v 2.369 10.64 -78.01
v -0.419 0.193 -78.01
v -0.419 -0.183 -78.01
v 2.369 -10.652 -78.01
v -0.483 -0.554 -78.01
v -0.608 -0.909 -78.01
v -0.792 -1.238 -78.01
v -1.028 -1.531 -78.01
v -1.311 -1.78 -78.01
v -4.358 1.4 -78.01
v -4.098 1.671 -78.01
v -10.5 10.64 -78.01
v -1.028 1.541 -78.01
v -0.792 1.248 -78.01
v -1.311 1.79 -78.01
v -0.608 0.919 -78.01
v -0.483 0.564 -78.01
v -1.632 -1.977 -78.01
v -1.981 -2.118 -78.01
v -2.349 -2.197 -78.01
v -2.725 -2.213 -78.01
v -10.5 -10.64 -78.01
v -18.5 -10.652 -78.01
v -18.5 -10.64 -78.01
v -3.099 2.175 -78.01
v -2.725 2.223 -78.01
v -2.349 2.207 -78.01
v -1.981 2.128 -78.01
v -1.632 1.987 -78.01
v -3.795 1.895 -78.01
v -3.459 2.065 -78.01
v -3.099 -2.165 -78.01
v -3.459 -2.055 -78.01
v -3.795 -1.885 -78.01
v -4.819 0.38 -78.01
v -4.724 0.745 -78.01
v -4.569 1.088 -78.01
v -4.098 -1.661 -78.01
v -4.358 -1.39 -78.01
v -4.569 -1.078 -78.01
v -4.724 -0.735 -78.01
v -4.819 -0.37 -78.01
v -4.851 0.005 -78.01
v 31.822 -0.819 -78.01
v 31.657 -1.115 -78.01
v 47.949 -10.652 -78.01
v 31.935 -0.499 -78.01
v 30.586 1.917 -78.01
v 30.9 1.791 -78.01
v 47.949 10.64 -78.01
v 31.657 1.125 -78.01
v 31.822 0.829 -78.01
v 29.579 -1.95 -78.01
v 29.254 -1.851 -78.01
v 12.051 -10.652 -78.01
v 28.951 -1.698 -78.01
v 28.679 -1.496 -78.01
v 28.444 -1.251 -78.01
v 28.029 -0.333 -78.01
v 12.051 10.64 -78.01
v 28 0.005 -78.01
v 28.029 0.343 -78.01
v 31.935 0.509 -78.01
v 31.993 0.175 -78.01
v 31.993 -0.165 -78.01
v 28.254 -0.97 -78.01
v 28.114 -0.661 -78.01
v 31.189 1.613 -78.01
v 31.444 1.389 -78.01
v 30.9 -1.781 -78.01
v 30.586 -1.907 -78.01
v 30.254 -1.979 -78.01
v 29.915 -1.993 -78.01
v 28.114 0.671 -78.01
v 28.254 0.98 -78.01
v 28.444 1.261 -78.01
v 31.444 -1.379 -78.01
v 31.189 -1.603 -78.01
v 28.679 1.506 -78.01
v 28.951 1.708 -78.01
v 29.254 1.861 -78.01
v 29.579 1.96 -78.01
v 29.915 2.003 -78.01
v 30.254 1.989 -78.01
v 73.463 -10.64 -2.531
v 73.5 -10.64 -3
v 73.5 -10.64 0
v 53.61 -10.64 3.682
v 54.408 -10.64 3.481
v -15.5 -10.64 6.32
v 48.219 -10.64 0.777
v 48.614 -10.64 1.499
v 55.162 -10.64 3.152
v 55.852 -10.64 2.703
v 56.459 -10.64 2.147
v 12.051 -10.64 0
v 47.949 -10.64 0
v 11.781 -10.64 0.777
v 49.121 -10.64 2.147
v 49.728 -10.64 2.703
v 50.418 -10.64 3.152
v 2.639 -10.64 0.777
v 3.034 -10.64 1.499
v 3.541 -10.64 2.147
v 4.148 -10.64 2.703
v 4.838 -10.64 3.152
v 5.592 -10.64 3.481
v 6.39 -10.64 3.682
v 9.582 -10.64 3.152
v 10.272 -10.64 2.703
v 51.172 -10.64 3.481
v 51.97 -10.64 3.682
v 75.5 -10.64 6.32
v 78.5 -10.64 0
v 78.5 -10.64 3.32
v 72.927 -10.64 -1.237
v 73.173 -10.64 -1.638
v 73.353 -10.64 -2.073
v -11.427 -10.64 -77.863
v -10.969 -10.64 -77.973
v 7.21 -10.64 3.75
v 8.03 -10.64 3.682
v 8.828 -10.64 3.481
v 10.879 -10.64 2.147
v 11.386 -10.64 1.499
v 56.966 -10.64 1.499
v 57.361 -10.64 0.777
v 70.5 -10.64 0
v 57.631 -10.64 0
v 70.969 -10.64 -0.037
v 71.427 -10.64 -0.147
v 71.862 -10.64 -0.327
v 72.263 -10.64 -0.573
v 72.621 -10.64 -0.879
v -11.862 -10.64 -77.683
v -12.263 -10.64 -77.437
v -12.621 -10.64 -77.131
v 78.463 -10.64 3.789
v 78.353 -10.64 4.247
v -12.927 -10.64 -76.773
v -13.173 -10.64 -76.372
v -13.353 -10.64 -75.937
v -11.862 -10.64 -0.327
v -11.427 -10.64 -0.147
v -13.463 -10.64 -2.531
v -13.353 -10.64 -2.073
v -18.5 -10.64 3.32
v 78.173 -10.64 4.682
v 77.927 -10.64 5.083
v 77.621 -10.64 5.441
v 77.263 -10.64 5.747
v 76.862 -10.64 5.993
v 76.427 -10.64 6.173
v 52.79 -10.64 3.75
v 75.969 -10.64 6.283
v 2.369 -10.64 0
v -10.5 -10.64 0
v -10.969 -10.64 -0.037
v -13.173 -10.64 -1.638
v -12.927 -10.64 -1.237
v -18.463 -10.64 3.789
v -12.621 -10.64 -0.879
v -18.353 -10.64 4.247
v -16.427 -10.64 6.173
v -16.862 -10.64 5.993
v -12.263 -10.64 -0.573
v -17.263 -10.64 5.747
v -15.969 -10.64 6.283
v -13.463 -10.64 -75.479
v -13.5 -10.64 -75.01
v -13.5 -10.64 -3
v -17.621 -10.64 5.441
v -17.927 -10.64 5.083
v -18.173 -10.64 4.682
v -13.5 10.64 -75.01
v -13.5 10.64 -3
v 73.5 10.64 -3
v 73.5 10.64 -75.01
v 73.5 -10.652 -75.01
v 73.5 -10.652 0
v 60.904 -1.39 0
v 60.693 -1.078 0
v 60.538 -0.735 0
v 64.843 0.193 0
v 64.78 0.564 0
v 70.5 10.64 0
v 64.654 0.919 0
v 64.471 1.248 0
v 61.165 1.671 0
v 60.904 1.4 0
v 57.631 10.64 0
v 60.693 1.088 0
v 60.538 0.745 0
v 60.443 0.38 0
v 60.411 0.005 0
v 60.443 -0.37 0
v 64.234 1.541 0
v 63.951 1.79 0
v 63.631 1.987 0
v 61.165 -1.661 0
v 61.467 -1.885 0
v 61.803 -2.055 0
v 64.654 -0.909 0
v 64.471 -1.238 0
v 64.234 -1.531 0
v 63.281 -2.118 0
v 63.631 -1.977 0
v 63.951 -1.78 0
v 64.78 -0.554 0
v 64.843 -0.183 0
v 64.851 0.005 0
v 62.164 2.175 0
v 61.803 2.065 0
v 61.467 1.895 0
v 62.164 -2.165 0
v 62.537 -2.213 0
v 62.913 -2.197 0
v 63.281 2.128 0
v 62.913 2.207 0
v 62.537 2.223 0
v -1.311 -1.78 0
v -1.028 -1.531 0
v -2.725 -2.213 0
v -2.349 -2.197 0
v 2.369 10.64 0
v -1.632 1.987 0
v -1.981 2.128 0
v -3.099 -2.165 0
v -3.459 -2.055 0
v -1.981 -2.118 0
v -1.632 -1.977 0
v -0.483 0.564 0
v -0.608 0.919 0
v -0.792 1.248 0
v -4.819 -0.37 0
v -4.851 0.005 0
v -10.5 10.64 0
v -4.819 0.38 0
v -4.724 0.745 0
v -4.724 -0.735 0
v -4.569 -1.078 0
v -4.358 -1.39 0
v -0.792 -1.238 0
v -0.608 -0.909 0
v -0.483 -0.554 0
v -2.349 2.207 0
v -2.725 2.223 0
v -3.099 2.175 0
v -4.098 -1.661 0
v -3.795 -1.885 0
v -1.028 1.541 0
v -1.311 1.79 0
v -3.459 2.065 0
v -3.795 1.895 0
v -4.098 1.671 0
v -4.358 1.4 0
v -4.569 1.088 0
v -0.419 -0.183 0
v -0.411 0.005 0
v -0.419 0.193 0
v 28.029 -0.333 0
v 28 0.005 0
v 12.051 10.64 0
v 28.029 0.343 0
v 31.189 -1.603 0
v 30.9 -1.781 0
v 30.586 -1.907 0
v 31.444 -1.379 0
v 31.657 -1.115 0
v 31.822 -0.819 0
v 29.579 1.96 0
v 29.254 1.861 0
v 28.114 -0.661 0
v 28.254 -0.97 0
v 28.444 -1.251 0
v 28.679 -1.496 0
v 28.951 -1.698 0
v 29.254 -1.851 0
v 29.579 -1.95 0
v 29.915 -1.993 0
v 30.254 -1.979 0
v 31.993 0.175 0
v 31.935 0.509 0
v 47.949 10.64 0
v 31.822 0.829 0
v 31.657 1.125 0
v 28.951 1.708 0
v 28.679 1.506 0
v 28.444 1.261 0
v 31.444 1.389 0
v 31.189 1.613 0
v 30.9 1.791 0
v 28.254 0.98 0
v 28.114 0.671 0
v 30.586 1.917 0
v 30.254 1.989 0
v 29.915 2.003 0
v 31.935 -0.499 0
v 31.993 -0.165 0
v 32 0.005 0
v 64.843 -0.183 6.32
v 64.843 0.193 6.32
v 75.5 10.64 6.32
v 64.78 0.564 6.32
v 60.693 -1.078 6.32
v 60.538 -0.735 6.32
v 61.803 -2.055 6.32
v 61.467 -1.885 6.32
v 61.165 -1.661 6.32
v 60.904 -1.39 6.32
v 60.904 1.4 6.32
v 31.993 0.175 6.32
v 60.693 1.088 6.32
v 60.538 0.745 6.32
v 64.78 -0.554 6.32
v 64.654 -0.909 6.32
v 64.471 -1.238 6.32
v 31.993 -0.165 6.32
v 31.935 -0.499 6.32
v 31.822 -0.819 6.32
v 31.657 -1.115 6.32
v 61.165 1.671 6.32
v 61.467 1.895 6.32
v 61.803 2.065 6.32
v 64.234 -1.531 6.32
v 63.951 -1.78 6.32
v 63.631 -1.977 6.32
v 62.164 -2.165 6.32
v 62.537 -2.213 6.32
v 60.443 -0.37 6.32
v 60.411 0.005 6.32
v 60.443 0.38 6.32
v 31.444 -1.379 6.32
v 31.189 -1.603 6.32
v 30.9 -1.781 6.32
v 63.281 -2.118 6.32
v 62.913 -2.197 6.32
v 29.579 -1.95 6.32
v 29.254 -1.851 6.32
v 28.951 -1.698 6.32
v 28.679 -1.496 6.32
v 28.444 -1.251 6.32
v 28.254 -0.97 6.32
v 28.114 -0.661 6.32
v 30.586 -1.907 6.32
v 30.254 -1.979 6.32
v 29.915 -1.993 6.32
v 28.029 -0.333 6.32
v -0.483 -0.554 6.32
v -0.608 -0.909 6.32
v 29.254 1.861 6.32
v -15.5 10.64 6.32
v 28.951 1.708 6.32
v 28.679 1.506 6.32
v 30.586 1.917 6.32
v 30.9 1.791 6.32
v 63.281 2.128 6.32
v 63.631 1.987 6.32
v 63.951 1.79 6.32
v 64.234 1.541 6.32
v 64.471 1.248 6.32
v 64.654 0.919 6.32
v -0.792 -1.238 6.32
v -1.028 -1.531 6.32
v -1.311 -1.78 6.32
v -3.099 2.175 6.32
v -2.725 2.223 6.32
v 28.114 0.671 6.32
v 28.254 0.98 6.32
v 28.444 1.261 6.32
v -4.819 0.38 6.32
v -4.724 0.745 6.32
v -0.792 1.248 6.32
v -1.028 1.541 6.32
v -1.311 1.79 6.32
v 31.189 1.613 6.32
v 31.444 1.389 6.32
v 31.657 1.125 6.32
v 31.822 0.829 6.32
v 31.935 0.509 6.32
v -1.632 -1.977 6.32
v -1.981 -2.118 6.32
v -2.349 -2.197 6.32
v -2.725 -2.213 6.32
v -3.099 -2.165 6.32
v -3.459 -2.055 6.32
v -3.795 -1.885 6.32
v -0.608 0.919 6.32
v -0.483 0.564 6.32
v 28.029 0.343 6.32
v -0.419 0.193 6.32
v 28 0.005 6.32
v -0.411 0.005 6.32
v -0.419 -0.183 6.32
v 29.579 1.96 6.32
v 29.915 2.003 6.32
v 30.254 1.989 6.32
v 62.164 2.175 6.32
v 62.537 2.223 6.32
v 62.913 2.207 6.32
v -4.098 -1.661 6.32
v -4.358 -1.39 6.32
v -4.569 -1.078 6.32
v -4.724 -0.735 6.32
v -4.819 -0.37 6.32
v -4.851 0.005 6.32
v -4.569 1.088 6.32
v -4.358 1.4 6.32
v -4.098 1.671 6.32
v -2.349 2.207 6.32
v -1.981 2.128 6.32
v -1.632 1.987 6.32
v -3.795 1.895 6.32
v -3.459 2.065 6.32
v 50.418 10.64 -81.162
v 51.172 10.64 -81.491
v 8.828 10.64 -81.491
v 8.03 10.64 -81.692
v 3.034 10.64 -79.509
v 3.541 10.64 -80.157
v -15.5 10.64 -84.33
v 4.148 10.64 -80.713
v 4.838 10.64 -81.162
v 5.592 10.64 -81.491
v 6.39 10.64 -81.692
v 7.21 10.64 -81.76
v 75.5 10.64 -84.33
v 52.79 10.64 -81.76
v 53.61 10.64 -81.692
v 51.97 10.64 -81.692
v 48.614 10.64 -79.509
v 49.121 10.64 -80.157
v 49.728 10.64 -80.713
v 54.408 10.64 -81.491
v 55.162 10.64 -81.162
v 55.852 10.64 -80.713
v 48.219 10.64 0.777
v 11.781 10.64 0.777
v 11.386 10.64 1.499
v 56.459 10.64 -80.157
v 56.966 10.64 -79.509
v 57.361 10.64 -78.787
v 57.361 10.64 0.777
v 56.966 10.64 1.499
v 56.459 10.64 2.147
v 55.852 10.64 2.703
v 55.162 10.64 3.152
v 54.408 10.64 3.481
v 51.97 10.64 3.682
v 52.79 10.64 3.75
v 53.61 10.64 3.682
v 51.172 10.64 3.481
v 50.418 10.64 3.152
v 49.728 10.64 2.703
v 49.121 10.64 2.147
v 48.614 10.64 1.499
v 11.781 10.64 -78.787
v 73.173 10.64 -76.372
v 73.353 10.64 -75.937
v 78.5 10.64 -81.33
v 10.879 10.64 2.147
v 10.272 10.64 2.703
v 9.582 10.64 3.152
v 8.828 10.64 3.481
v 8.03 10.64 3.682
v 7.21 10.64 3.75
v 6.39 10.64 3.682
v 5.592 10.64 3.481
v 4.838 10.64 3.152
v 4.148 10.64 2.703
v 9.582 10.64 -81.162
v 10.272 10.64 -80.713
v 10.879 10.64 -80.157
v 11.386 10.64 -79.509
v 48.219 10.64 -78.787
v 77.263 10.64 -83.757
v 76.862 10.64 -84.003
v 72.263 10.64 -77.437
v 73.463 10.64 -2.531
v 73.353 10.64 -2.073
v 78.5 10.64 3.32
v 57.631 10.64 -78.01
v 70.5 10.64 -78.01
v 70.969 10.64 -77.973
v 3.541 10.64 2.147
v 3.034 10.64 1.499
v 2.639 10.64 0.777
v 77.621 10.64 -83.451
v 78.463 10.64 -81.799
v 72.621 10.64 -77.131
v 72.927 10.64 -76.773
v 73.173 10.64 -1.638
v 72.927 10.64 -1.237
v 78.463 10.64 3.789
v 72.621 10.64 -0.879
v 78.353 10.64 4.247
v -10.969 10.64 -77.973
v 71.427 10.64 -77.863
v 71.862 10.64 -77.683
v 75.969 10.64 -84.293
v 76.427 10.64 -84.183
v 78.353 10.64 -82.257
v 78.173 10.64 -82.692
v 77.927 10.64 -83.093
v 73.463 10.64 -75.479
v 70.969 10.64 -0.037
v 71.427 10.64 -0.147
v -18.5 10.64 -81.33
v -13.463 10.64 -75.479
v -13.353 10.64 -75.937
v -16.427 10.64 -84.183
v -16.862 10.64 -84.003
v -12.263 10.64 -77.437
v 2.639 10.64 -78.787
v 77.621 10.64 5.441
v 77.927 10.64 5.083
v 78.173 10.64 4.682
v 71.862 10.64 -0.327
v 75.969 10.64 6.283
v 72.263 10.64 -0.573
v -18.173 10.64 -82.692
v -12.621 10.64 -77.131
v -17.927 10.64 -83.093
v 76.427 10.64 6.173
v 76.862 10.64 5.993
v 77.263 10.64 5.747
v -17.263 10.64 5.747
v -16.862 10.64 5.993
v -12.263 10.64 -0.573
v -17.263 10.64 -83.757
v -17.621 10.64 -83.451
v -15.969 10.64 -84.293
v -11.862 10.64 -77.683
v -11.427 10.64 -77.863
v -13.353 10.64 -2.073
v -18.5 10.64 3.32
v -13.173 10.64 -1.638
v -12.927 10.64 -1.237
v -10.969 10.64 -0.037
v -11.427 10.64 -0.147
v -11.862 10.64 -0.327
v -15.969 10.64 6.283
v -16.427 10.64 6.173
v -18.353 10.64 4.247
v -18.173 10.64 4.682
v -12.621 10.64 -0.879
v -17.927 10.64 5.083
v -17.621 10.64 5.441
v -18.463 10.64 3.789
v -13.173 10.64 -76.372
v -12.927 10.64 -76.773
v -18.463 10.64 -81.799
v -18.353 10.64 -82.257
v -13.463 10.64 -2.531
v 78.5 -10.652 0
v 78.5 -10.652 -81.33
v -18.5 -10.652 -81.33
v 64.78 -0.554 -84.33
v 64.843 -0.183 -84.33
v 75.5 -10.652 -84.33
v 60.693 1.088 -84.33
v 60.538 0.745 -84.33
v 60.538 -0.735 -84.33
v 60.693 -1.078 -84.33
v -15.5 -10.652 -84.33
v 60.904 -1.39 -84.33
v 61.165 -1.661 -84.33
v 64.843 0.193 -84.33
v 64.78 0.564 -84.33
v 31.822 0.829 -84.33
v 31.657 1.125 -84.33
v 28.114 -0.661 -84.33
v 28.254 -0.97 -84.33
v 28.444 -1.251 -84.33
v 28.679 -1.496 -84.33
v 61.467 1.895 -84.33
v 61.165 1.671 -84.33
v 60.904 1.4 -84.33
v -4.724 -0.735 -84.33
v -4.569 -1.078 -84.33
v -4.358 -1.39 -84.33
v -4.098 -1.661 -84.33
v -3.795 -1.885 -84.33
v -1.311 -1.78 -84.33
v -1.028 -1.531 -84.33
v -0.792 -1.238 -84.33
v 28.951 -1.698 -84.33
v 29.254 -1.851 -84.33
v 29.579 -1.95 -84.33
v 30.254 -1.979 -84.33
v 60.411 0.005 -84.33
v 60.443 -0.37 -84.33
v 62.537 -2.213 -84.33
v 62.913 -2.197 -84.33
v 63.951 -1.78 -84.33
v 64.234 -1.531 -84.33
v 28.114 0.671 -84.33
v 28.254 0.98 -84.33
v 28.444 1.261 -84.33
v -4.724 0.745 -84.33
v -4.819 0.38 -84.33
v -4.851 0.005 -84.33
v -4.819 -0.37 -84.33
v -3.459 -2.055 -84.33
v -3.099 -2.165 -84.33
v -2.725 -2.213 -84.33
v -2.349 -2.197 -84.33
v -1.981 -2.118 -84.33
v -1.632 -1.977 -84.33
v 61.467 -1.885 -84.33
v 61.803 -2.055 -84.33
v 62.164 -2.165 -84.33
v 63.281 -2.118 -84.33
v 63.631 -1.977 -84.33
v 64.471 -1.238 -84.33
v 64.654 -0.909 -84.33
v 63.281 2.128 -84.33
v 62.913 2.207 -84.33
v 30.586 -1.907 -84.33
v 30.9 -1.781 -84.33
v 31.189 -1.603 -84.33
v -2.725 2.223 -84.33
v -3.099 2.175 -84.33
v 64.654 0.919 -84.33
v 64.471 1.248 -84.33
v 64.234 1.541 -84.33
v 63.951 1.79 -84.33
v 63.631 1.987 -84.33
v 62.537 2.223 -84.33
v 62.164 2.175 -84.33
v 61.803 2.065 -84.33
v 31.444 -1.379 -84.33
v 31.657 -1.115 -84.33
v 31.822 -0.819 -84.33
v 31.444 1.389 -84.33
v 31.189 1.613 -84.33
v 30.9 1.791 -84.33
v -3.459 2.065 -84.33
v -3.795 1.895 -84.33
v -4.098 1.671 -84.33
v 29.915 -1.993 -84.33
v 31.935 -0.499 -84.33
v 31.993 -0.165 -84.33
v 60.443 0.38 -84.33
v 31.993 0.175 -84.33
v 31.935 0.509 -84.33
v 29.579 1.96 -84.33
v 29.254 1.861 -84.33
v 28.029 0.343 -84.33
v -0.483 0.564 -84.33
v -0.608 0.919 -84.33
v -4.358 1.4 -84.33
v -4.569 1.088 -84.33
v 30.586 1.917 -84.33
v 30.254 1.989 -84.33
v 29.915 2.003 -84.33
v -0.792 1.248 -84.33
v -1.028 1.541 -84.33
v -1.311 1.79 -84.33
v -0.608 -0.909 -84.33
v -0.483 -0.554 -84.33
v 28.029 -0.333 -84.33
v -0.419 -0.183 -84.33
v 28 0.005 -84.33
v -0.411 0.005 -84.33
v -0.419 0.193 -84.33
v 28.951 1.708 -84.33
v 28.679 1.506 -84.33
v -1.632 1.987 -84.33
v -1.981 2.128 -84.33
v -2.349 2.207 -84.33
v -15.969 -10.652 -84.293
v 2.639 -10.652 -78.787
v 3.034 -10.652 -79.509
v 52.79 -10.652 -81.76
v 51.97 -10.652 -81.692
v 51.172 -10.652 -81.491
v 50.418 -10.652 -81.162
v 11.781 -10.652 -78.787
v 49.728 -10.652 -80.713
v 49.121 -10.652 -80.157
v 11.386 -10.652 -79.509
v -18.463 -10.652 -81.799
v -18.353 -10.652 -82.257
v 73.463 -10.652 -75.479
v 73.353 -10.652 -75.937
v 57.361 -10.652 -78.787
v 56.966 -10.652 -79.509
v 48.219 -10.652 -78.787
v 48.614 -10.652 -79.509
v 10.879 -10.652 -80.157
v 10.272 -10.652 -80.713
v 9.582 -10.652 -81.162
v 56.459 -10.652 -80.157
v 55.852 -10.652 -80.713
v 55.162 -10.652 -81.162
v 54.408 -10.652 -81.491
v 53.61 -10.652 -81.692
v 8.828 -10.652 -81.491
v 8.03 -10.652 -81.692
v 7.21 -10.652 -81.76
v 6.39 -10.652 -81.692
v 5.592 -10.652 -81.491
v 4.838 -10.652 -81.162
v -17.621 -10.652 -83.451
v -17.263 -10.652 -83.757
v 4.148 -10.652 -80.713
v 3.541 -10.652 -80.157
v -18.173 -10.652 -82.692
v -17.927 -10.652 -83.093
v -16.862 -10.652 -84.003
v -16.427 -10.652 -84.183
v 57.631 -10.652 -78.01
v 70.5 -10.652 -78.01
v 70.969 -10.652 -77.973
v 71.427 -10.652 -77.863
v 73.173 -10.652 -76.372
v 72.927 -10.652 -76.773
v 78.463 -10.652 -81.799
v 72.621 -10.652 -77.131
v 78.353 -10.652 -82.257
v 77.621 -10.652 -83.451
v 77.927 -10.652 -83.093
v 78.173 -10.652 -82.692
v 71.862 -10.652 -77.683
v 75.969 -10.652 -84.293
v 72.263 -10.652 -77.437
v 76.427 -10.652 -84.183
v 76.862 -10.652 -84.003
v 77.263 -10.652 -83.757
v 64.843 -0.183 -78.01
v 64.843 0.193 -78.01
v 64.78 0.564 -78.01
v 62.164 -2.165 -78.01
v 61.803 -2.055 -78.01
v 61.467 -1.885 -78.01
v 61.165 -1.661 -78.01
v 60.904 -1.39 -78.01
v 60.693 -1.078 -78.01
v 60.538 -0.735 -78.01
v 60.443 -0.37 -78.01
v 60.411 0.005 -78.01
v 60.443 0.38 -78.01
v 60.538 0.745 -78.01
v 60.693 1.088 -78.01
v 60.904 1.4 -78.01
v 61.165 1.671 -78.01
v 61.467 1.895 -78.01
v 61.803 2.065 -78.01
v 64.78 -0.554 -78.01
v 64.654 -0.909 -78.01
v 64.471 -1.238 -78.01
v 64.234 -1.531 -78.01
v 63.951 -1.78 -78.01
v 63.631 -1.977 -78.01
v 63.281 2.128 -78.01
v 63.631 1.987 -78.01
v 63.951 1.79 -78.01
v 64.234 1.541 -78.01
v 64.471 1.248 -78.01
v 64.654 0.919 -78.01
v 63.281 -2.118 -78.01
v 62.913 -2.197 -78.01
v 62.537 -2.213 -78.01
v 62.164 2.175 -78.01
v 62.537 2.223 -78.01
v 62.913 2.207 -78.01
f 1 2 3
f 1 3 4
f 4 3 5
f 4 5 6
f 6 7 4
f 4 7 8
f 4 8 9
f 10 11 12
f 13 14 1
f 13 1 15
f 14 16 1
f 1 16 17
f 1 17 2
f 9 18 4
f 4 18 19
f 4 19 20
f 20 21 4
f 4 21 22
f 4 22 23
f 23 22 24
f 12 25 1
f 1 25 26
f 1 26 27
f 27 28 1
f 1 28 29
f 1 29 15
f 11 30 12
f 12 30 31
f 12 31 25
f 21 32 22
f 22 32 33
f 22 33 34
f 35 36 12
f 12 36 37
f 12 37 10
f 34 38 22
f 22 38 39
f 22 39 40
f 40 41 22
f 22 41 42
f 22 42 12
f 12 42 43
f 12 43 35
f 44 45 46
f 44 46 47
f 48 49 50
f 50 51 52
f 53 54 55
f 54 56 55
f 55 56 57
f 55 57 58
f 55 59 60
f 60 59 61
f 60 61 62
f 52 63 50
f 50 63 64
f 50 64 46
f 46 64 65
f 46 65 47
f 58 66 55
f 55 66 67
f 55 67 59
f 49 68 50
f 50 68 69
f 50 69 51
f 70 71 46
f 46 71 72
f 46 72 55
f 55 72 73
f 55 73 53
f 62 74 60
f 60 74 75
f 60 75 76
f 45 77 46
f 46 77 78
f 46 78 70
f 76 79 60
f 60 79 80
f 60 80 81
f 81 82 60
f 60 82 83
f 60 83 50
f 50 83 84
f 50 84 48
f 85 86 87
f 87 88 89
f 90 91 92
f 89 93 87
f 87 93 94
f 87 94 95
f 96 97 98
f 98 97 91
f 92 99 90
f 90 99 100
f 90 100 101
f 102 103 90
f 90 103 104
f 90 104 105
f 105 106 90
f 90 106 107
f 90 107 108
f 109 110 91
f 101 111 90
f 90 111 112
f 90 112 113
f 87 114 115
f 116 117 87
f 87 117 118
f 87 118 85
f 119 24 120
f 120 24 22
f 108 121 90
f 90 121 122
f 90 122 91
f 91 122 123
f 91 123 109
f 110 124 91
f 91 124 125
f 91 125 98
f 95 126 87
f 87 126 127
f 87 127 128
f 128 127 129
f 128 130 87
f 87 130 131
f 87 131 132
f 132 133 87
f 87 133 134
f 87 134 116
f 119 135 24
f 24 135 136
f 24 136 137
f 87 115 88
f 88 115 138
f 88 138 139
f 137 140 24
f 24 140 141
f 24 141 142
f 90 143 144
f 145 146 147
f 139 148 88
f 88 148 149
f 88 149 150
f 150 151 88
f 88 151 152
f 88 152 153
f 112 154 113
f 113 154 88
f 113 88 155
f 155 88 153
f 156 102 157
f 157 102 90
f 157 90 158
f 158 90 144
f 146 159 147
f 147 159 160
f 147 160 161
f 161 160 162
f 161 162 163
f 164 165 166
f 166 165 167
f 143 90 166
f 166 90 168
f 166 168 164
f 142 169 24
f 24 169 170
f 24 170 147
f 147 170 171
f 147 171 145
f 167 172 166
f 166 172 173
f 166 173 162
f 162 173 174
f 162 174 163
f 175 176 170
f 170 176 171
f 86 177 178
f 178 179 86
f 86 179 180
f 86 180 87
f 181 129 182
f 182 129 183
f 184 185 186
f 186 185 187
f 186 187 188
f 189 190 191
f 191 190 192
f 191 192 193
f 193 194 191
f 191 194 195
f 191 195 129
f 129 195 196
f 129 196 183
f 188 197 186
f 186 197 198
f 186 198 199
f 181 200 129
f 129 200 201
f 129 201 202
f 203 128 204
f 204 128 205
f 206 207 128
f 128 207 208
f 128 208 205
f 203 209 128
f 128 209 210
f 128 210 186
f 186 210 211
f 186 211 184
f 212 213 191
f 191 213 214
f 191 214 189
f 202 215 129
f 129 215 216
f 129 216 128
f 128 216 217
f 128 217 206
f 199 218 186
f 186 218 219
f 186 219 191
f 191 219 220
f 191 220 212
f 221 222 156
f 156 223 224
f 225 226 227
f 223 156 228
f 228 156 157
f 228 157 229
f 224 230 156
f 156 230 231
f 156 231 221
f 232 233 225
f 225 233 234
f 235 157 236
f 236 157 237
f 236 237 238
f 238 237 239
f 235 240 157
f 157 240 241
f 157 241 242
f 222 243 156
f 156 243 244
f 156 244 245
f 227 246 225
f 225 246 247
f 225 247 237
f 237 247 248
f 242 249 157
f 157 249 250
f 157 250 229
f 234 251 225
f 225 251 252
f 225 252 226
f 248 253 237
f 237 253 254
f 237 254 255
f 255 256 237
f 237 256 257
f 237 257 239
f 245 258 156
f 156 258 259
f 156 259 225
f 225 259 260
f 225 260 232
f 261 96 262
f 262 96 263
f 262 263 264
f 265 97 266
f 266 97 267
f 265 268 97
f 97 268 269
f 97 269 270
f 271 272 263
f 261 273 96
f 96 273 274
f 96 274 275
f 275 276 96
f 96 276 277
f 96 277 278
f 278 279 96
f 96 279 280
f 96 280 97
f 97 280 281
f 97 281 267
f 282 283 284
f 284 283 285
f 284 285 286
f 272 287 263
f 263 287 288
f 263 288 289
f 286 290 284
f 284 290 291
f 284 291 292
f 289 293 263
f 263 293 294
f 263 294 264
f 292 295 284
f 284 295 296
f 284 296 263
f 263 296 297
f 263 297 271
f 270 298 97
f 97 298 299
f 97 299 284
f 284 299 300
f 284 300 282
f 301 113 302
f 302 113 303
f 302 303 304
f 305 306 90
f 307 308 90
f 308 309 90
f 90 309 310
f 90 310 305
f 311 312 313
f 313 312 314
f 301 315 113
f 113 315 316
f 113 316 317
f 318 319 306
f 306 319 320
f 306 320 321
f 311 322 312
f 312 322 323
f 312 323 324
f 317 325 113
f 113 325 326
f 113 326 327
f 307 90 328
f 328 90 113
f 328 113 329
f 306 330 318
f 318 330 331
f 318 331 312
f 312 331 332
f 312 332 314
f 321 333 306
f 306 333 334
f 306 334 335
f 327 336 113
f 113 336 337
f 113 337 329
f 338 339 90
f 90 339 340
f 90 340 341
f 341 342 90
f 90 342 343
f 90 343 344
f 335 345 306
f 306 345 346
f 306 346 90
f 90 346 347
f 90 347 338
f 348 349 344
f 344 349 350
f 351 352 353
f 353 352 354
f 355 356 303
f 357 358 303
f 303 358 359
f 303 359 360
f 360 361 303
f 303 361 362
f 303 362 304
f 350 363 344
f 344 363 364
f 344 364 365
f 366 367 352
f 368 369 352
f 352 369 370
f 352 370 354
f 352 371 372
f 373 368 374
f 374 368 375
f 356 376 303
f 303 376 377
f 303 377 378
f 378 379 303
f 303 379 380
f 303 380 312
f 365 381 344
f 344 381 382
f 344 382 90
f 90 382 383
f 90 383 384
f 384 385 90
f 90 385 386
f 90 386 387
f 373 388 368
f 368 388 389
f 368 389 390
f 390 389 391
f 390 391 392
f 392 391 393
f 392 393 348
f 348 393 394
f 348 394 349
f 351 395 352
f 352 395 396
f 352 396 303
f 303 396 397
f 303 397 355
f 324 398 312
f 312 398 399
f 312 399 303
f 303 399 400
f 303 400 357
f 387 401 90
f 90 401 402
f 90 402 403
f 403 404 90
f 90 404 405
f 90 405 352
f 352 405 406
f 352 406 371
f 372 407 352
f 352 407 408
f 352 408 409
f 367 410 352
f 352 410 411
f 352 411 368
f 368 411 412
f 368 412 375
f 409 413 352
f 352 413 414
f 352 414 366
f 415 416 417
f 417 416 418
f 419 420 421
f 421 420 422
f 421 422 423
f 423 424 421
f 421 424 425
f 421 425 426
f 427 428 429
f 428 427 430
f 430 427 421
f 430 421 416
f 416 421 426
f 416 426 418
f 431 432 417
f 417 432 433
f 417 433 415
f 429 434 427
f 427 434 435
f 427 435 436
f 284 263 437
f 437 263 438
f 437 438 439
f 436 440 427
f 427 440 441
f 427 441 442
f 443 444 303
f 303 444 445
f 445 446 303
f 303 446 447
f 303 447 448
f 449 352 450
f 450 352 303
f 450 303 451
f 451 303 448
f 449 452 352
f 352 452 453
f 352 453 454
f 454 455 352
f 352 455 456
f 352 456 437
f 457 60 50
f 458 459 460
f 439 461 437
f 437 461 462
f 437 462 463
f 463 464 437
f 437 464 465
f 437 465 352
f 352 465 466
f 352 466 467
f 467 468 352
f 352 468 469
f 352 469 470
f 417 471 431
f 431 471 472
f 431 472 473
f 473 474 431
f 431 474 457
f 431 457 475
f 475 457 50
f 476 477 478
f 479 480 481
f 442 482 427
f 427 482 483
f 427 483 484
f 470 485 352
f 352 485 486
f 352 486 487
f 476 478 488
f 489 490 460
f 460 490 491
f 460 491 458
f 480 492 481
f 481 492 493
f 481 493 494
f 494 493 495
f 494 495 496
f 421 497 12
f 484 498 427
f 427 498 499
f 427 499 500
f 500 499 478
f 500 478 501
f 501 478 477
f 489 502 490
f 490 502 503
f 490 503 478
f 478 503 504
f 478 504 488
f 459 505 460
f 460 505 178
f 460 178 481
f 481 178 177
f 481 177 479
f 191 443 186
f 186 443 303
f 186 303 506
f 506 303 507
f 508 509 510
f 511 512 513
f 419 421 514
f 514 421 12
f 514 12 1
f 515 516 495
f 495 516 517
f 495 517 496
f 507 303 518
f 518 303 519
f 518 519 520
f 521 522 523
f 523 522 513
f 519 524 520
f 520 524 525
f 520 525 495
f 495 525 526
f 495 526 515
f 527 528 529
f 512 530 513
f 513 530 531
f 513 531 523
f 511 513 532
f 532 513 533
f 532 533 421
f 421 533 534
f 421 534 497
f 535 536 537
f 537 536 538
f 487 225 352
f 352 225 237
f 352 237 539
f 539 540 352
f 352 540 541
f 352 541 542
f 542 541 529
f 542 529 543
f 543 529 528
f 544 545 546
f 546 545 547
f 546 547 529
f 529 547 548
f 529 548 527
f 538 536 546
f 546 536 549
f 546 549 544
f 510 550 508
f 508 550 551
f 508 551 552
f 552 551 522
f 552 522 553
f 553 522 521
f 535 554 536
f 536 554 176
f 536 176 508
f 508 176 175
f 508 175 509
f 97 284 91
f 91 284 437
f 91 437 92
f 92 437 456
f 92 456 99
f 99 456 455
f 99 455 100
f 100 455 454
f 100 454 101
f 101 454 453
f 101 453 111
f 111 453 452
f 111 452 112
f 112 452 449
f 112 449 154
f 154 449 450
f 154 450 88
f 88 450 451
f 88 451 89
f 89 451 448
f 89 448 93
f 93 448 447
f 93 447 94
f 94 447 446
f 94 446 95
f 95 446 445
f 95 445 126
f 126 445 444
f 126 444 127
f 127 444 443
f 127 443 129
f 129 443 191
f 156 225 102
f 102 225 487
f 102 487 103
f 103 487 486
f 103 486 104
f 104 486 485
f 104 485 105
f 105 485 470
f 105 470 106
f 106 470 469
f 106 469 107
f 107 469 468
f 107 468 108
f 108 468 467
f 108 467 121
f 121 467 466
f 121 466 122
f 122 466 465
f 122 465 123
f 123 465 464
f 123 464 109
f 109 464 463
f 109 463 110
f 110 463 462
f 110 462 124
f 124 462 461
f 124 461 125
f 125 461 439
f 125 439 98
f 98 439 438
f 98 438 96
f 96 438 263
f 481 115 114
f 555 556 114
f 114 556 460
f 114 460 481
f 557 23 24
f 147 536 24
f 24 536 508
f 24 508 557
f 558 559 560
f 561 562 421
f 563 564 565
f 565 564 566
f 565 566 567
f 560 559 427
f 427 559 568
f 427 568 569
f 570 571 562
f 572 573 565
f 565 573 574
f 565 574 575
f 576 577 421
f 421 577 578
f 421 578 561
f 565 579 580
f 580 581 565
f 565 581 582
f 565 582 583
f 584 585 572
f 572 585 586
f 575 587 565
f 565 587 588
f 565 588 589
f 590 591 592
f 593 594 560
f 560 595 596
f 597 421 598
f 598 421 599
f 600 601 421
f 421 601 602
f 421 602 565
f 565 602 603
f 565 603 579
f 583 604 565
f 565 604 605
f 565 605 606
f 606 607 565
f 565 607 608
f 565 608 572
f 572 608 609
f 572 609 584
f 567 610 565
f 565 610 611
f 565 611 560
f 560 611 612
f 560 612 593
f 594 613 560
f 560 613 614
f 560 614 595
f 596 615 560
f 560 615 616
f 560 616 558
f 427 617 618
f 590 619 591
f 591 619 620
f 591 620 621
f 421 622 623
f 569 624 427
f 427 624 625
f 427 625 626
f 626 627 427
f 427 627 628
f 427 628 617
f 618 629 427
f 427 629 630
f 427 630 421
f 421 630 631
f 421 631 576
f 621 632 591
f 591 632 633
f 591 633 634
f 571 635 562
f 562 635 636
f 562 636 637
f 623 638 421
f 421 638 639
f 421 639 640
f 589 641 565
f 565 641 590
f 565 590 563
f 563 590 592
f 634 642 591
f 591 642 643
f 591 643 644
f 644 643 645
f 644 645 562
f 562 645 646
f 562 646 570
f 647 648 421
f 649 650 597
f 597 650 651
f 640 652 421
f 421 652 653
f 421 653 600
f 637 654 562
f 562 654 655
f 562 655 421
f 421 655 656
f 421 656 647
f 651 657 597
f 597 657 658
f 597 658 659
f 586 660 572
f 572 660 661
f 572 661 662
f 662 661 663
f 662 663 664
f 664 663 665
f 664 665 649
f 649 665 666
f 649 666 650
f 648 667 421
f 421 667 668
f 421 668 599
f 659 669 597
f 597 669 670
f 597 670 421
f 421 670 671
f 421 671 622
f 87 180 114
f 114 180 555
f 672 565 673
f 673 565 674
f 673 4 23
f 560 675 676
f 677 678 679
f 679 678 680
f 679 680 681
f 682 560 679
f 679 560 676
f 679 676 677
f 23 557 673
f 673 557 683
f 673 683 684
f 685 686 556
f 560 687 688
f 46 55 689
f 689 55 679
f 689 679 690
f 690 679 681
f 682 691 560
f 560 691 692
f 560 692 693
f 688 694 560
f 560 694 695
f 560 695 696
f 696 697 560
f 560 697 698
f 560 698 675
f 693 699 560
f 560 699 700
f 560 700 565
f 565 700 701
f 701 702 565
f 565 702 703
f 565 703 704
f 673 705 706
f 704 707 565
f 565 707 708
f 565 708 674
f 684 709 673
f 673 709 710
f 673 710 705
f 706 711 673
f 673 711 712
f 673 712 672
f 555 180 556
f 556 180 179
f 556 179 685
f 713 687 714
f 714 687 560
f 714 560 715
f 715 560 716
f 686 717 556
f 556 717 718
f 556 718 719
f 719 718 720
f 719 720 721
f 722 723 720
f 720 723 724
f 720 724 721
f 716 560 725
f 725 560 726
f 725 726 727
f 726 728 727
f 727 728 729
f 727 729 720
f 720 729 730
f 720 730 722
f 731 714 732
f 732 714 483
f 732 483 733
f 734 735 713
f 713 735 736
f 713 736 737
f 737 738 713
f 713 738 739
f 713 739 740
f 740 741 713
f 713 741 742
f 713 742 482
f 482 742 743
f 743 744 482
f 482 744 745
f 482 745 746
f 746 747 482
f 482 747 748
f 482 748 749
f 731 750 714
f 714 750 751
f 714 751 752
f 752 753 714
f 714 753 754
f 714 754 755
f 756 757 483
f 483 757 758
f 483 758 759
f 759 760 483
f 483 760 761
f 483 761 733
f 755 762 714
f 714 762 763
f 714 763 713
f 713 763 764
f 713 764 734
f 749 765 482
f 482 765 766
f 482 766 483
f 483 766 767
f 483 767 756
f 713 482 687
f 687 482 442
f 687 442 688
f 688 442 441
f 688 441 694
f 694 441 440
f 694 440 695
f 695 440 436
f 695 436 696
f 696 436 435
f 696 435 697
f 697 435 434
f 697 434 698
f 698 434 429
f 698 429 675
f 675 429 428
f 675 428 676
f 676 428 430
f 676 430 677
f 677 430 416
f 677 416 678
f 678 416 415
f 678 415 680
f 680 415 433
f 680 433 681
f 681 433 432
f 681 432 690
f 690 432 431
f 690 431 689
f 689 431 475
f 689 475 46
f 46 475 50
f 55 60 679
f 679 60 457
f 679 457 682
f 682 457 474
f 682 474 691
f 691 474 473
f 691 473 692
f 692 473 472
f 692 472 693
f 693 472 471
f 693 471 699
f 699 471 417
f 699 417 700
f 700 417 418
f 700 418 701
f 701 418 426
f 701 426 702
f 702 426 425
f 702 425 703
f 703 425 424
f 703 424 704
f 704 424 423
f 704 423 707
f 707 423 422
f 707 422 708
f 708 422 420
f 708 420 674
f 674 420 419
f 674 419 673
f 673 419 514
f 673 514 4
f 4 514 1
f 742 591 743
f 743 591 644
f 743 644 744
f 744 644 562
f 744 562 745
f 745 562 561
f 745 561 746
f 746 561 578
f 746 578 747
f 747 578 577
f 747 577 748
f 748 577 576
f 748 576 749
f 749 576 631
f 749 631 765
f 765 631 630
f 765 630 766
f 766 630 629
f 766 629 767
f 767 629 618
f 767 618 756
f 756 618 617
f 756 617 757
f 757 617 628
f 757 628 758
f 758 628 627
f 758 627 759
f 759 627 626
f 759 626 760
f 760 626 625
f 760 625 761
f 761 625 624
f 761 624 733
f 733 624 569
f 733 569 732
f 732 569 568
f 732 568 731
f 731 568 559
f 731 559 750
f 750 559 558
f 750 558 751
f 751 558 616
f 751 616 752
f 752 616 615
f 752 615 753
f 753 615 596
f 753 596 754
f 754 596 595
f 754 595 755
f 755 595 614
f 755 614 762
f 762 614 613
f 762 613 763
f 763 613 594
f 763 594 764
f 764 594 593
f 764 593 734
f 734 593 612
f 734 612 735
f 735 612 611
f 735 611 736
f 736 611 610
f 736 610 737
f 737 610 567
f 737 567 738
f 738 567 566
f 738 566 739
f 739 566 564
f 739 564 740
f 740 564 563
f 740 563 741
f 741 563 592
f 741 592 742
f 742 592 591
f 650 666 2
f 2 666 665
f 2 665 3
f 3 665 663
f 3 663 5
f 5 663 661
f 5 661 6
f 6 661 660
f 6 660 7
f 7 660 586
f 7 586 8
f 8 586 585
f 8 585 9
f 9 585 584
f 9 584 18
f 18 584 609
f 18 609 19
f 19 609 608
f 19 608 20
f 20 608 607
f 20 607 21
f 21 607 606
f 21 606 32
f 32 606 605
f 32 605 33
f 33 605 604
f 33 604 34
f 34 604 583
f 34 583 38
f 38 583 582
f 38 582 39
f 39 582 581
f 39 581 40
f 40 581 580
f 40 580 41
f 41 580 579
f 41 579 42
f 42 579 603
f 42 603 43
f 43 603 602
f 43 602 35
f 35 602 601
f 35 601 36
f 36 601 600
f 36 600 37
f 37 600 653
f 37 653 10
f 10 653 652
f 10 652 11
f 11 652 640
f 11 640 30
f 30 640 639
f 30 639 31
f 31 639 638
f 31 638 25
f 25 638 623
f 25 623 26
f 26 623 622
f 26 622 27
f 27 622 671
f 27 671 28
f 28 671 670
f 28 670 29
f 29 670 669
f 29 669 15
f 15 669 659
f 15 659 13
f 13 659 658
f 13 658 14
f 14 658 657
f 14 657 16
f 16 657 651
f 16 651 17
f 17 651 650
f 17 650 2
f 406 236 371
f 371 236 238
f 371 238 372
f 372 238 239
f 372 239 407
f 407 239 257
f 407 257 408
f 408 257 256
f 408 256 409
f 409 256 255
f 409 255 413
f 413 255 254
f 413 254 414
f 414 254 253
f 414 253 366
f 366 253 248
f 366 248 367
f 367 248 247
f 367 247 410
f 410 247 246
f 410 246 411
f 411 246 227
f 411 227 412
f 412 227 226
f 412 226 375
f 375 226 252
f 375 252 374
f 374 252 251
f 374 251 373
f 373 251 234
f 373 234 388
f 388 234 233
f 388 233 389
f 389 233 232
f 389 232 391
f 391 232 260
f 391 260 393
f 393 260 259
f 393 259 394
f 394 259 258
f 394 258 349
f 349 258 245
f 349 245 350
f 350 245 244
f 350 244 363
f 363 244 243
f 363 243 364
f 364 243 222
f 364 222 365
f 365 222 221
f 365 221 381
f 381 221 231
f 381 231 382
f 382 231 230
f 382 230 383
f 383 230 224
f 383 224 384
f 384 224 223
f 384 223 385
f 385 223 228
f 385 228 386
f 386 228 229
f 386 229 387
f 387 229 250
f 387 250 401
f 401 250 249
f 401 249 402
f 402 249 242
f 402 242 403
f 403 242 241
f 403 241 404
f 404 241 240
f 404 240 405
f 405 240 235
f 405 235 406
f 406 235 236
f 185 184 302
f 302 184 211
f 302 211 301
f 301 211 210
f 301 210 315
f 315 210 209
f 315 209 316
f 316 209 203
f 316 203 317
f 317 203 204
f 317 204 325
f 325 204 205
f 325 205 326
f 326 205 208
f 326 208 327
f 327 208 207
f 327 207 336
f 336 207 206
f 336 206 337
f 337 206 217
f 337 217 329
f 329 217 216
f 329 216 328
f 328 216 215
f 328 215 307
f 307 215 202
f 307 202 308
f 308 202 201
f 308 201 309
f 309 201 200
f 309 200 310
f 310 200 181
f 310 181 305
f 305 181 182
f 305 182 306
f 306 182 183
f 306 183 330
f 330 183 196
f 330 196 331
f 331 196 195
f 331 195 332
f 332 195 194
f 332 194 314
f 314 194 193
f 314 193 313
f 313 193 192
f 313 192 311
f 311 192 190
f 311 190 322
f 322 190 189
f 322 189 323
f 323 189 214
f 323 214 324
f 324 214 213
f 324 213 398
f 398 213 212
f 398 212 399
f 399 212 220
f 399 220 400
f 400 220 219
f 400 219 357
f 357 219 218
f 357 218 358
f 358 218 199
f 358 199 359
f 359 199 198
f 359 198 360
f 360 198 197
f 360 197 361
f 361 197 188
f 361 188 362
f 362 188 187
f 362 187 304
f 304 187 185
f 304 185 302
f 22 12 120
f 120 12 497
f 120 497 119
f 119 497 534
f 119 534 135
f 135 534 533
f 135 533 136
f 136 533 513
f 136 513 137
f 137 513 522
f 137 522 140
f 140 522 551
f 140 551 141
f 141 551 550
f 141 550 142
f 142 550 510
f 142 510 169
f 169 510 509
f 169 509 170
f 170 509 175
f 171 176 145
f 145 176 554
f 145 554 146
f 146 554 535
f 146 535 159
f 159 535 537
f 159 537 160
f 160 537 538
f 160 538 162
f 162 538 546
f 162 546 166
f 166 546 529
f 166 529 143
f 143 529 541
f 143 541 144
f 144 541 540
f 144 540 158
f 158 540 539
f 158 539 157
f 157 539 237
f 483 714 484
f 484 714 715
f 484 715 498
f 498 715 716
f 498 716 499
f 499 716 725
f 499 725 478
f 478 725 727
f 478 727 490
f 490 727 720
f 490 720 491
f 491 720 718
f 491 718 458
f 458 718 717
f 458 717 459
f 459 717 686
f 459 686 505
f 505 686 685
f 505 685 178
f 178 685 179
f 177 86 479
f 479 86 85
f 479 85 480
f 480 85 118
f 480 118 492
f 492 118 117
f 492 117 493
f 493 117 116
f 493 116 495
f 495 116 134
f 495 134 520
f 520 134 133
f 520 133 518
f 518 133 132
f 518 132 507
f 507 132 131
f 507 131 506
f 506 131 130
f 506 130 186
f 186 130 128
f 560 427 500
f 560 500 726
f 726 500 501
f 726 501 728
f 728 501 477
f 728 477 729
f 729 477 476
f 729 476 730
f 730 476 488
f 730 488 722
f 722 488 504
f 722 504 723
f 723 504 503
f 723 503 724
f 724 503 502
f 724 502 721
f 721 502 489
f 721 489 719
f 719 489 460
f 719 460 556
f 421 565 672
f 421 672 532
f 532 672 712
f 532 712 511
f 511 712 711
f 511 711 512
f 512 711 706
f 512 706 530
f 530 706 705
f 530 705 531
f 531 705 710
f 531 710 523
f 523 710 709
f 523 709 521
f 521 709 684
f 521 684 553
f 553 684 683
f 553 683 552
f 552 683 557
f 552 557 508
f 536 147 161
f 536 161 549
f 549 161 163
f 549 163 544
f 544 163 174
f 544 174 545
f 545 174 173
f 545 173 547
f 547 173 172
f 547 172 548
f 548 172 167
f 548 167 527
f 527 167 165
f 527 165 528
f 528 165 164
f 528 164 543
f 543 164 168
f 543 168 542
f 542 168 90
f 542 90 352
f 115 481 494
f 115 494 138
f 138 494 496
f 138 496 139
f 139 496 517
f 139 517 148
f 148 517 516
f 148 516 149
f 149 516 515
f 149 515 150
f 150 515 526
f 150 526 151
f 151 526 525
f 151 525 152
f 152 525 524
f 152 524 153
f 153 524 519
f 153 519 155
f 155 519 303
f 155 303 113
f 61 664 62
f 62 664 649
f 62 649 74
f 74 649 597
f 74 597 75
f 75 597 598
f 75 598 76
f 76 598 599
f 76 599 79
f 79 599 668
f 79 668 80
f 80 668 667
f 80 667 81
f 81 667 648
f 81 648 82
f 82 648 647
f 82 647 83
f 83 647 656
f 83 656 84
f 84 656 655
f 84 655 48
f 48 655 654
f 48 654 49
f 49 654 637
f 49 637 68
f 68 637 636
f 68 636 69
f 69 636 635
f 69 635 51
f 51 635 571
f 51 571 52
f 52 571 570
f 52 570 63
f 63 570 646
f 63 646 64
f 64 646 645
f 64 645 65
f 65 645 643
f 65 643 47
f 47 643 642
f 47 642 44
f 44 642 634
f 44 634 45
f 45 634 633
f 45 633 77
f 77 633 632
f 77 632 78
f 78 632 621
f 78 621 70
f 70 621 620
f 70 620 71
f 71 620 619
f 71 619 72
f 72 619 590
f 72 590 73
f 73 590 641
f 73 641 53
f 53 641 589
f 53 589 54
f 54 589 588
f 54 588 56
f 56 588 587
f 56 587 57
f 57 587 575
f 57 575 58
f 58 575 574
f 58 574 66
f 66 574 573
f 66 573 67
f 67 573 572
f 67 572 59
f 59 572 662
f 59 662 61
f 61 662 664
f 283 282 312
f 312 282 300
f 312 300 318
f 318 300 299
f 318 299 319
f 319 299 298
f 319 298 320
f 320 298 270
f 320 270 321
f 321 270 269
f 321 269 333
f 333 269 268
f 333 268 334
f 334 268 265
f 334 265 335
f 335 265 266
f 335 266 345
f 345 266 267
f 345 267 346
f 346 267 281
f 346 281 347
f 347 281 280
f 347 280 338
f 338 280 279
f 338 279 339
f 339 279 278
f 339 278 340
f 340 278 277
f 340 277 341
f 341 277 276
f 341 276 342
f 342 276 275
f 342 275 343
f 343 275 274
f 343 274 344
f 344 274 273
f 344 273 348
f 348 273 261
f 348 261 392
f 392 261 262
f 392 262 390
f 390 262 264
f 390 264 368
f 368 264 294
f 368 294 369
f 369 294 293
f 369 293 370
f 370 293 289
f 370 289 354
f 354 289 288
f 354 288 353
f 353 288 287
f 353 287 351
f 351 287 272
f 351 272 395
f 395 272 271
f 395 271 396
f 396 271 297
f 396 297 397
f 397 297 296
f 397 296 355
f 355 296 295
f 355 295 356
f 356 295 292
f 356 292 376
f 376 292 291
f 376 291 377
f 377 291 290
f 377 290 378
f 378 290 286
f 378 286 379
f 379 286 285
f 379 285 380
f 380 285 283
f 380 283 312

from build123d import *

# Parameters (mm, degrees)
SKETCH1_W           = 60
SKETCH1_H           = 6.32
BOSS_EXTRUDE1_DEPTH = 10.64
SKETCH2_R           = 5
CUT_EXTRUDE1_DEPTH  = 64.974845056
SKETCH3_W           = 6.32
SKETCH3_H           = 21.28
BOSS_EXTRUDE2_DEPTH = 18.5
SKETCH4_W           = 6.32
SKETCH4_H           = 21.28
BOSS_EXTRUDE3_DEPTH = 18.5
SKETCH5_W           = 5
SKETCH5_H           = 21.28
BOSS_EXTRUDE6_DEPTH = 84.33
SKETCH6_W           = 5
SKETCH6_H           = 21.291954735
BOSS_EXTRUDE7_DEPTH = 84.33
SKETCH7_W           = 6.32
SKETCH7_H           = 21.291954735
BOSS_EXTRUDE8_DEPTH = 92
SKETCH9_R           = 5
CUT_EXTRUDE2_DEPTH  = 118.162904694
SKETCH10_R          = 2.22
CUT_EXTRUDE3_DEPTH  = 121.387443862
FILLET1_R           = 3
SKETCH13_R          = 2
CUT_EXTRUDE4_DEPTH  = 121.387443862


with BuildPart() as part:
    # Sketch1 → Boss-Extrude1 (new, symmetric)
    with BuildSketch(Plane(origin=(0, 0, 0), x_dir=(1, 0, 0), z_dir=(0, 1, 0))):
        with Locations((30, -3.16)):
            Rectangle(SKETCH1_W, SKETCH1_H)
    extrude(amount=BOSS_EXTRUDE1_DEPTH, both=True)

    # Sketch2 → Cut-Extrude1 (cut, through all)
    with BuildSketch(Plane(origin=(0, 10.64, 0), x_dir=(1, 0, 0), z_dir=(0, 1, 0))):
        with Locations((7.21, 1.25)):
            Circle(SKETCH2_R)
        with Locations((52.79, 1.25)):
            Circle(SKETCH2_R)
    extrude(amount=-CUT_EXTRUDE1_DEPTH, mode=Mode.SUBTRACT)

    # Sketch3 → Boss-Extrude2 (add)
    with BuildSketch(Plane(origin=(60, 0, 0), x_dir=(0, 0, -1), z_dir=(1, 0, 0))):
        with Locations((-3.16, 0)):
            Rectangle(SKETCH3_W, SKETCH3_H)
    extrude(amount=BOSS_EXTRUDE2_DEPTH)

    # Sketch4 → Boss-Extrude3 (add)
    with BuildSketch(Plane.ZY):
        with Locations((3.16, 0)):
            Rectangle(SKETCH4_W, SKETCH4_H)
    extrude(amount=BOSS_EXTRUDE3_DEPTH)

    # Sketch5 → Boss-Extrude6 (add)
    with BuildSketch(Plane(origin=(0, 0, 0), x_dir=(-1, 0, 0), z_dir=(0, 0, -1))):
        with Locations((16, 0)):
            Rectangle(SKETCH5_W, SKETCH5_H)
    extrude(amount=BOSS_EXTRUDE6_DEPTH)

    # Sketch6 → Boss-Extrude7 (add)
    with BuildSketch(Plane(origin=(0, 0, 0), x_dir=(-1, 0, 0), z_dir=(0, 0, -1))):
        with Locations((-76, -0.005977367)):
            Rectangle(SKETCH6_W, SKETCH6_H)
    extrude(amount=BOSS_EXTRUDE7_DEPTH)

    # Sketch7 → Boss-Extrude8 (add, through all)
    with BuildSketch(Plane.ZY.offset(-73.5)):
        with Locations((-81.17, -0.005977367)):
            Rectangle(SKETCH7_W, SKETCH7_H)
    extrude(amount=BOSS_EXTRUDE8_DEPTH)

    # Sketch9 → Cut-Extrude2 (cut, through all)
    with BuildSketch(Plane(origin=(0, 10.64, 0), x_dir=(1, 0, 0), z_dir=(0, 1, 0))):
        with Locations((7.21, 76.76)):
            Circle(SKETCH9_R)
        with Locations((52.79, 76.76)):
            Circle(SKETCH9_R)
    extrude(amount=-CUT_EXTRUDE2_DEPTH, mode=Mode.SUBTRACT)

    # Sketch10 → Cut-Extrude3 (cut, through all)
    with BuildSketch(Plane(origin=(0, 0, -84.33), x_dir=(-1, 0, 0), z_dir=(0, 0, -1))):
        with Locations((-62.631229183, 0.005)):
            Circle(SKETCH10_R)
        with Locations((2.631229183, 0.005)):
            Circle(SKETCH10_R)
    extrude(amount=-CUT_EXTRUDE3_DEPTH, mode=Mode.SUBTRACT)

    # Fillet1
    fillet1_edges = [part.edges().sort_by_distance(p)[0] for p in [
        (78.5, 0, 6.32),
        (-18.5, 0, 6.32),
        (-13.5, 0, 0),
        (-18.5, -0.005977367, -84.33),
        (73.5, 0, 0),
        (78.5, -0.005977367, -84.33),
        (-13.5, 0, -78.01),
        (73.5, -0.005977367, -78.01),
    ]]
    fillet(fillet1_edges, radius=FILLET1_R)

    # Sketch13 → Cut-Extrude4 (cut, through all)
    with BuildSketch(Plane(origin=(0, 0, -84.33), x_dir=(-1, 0, 0), z_dir=(0, 0, -1))):
        with Locations((-30, 0.005)):
            Circle(SKETCH13_R)
    extrude(amount=-CUT_EXTRUDE4_DEPTH, mode=Mode.SUBTRACT)


solid = part.part
